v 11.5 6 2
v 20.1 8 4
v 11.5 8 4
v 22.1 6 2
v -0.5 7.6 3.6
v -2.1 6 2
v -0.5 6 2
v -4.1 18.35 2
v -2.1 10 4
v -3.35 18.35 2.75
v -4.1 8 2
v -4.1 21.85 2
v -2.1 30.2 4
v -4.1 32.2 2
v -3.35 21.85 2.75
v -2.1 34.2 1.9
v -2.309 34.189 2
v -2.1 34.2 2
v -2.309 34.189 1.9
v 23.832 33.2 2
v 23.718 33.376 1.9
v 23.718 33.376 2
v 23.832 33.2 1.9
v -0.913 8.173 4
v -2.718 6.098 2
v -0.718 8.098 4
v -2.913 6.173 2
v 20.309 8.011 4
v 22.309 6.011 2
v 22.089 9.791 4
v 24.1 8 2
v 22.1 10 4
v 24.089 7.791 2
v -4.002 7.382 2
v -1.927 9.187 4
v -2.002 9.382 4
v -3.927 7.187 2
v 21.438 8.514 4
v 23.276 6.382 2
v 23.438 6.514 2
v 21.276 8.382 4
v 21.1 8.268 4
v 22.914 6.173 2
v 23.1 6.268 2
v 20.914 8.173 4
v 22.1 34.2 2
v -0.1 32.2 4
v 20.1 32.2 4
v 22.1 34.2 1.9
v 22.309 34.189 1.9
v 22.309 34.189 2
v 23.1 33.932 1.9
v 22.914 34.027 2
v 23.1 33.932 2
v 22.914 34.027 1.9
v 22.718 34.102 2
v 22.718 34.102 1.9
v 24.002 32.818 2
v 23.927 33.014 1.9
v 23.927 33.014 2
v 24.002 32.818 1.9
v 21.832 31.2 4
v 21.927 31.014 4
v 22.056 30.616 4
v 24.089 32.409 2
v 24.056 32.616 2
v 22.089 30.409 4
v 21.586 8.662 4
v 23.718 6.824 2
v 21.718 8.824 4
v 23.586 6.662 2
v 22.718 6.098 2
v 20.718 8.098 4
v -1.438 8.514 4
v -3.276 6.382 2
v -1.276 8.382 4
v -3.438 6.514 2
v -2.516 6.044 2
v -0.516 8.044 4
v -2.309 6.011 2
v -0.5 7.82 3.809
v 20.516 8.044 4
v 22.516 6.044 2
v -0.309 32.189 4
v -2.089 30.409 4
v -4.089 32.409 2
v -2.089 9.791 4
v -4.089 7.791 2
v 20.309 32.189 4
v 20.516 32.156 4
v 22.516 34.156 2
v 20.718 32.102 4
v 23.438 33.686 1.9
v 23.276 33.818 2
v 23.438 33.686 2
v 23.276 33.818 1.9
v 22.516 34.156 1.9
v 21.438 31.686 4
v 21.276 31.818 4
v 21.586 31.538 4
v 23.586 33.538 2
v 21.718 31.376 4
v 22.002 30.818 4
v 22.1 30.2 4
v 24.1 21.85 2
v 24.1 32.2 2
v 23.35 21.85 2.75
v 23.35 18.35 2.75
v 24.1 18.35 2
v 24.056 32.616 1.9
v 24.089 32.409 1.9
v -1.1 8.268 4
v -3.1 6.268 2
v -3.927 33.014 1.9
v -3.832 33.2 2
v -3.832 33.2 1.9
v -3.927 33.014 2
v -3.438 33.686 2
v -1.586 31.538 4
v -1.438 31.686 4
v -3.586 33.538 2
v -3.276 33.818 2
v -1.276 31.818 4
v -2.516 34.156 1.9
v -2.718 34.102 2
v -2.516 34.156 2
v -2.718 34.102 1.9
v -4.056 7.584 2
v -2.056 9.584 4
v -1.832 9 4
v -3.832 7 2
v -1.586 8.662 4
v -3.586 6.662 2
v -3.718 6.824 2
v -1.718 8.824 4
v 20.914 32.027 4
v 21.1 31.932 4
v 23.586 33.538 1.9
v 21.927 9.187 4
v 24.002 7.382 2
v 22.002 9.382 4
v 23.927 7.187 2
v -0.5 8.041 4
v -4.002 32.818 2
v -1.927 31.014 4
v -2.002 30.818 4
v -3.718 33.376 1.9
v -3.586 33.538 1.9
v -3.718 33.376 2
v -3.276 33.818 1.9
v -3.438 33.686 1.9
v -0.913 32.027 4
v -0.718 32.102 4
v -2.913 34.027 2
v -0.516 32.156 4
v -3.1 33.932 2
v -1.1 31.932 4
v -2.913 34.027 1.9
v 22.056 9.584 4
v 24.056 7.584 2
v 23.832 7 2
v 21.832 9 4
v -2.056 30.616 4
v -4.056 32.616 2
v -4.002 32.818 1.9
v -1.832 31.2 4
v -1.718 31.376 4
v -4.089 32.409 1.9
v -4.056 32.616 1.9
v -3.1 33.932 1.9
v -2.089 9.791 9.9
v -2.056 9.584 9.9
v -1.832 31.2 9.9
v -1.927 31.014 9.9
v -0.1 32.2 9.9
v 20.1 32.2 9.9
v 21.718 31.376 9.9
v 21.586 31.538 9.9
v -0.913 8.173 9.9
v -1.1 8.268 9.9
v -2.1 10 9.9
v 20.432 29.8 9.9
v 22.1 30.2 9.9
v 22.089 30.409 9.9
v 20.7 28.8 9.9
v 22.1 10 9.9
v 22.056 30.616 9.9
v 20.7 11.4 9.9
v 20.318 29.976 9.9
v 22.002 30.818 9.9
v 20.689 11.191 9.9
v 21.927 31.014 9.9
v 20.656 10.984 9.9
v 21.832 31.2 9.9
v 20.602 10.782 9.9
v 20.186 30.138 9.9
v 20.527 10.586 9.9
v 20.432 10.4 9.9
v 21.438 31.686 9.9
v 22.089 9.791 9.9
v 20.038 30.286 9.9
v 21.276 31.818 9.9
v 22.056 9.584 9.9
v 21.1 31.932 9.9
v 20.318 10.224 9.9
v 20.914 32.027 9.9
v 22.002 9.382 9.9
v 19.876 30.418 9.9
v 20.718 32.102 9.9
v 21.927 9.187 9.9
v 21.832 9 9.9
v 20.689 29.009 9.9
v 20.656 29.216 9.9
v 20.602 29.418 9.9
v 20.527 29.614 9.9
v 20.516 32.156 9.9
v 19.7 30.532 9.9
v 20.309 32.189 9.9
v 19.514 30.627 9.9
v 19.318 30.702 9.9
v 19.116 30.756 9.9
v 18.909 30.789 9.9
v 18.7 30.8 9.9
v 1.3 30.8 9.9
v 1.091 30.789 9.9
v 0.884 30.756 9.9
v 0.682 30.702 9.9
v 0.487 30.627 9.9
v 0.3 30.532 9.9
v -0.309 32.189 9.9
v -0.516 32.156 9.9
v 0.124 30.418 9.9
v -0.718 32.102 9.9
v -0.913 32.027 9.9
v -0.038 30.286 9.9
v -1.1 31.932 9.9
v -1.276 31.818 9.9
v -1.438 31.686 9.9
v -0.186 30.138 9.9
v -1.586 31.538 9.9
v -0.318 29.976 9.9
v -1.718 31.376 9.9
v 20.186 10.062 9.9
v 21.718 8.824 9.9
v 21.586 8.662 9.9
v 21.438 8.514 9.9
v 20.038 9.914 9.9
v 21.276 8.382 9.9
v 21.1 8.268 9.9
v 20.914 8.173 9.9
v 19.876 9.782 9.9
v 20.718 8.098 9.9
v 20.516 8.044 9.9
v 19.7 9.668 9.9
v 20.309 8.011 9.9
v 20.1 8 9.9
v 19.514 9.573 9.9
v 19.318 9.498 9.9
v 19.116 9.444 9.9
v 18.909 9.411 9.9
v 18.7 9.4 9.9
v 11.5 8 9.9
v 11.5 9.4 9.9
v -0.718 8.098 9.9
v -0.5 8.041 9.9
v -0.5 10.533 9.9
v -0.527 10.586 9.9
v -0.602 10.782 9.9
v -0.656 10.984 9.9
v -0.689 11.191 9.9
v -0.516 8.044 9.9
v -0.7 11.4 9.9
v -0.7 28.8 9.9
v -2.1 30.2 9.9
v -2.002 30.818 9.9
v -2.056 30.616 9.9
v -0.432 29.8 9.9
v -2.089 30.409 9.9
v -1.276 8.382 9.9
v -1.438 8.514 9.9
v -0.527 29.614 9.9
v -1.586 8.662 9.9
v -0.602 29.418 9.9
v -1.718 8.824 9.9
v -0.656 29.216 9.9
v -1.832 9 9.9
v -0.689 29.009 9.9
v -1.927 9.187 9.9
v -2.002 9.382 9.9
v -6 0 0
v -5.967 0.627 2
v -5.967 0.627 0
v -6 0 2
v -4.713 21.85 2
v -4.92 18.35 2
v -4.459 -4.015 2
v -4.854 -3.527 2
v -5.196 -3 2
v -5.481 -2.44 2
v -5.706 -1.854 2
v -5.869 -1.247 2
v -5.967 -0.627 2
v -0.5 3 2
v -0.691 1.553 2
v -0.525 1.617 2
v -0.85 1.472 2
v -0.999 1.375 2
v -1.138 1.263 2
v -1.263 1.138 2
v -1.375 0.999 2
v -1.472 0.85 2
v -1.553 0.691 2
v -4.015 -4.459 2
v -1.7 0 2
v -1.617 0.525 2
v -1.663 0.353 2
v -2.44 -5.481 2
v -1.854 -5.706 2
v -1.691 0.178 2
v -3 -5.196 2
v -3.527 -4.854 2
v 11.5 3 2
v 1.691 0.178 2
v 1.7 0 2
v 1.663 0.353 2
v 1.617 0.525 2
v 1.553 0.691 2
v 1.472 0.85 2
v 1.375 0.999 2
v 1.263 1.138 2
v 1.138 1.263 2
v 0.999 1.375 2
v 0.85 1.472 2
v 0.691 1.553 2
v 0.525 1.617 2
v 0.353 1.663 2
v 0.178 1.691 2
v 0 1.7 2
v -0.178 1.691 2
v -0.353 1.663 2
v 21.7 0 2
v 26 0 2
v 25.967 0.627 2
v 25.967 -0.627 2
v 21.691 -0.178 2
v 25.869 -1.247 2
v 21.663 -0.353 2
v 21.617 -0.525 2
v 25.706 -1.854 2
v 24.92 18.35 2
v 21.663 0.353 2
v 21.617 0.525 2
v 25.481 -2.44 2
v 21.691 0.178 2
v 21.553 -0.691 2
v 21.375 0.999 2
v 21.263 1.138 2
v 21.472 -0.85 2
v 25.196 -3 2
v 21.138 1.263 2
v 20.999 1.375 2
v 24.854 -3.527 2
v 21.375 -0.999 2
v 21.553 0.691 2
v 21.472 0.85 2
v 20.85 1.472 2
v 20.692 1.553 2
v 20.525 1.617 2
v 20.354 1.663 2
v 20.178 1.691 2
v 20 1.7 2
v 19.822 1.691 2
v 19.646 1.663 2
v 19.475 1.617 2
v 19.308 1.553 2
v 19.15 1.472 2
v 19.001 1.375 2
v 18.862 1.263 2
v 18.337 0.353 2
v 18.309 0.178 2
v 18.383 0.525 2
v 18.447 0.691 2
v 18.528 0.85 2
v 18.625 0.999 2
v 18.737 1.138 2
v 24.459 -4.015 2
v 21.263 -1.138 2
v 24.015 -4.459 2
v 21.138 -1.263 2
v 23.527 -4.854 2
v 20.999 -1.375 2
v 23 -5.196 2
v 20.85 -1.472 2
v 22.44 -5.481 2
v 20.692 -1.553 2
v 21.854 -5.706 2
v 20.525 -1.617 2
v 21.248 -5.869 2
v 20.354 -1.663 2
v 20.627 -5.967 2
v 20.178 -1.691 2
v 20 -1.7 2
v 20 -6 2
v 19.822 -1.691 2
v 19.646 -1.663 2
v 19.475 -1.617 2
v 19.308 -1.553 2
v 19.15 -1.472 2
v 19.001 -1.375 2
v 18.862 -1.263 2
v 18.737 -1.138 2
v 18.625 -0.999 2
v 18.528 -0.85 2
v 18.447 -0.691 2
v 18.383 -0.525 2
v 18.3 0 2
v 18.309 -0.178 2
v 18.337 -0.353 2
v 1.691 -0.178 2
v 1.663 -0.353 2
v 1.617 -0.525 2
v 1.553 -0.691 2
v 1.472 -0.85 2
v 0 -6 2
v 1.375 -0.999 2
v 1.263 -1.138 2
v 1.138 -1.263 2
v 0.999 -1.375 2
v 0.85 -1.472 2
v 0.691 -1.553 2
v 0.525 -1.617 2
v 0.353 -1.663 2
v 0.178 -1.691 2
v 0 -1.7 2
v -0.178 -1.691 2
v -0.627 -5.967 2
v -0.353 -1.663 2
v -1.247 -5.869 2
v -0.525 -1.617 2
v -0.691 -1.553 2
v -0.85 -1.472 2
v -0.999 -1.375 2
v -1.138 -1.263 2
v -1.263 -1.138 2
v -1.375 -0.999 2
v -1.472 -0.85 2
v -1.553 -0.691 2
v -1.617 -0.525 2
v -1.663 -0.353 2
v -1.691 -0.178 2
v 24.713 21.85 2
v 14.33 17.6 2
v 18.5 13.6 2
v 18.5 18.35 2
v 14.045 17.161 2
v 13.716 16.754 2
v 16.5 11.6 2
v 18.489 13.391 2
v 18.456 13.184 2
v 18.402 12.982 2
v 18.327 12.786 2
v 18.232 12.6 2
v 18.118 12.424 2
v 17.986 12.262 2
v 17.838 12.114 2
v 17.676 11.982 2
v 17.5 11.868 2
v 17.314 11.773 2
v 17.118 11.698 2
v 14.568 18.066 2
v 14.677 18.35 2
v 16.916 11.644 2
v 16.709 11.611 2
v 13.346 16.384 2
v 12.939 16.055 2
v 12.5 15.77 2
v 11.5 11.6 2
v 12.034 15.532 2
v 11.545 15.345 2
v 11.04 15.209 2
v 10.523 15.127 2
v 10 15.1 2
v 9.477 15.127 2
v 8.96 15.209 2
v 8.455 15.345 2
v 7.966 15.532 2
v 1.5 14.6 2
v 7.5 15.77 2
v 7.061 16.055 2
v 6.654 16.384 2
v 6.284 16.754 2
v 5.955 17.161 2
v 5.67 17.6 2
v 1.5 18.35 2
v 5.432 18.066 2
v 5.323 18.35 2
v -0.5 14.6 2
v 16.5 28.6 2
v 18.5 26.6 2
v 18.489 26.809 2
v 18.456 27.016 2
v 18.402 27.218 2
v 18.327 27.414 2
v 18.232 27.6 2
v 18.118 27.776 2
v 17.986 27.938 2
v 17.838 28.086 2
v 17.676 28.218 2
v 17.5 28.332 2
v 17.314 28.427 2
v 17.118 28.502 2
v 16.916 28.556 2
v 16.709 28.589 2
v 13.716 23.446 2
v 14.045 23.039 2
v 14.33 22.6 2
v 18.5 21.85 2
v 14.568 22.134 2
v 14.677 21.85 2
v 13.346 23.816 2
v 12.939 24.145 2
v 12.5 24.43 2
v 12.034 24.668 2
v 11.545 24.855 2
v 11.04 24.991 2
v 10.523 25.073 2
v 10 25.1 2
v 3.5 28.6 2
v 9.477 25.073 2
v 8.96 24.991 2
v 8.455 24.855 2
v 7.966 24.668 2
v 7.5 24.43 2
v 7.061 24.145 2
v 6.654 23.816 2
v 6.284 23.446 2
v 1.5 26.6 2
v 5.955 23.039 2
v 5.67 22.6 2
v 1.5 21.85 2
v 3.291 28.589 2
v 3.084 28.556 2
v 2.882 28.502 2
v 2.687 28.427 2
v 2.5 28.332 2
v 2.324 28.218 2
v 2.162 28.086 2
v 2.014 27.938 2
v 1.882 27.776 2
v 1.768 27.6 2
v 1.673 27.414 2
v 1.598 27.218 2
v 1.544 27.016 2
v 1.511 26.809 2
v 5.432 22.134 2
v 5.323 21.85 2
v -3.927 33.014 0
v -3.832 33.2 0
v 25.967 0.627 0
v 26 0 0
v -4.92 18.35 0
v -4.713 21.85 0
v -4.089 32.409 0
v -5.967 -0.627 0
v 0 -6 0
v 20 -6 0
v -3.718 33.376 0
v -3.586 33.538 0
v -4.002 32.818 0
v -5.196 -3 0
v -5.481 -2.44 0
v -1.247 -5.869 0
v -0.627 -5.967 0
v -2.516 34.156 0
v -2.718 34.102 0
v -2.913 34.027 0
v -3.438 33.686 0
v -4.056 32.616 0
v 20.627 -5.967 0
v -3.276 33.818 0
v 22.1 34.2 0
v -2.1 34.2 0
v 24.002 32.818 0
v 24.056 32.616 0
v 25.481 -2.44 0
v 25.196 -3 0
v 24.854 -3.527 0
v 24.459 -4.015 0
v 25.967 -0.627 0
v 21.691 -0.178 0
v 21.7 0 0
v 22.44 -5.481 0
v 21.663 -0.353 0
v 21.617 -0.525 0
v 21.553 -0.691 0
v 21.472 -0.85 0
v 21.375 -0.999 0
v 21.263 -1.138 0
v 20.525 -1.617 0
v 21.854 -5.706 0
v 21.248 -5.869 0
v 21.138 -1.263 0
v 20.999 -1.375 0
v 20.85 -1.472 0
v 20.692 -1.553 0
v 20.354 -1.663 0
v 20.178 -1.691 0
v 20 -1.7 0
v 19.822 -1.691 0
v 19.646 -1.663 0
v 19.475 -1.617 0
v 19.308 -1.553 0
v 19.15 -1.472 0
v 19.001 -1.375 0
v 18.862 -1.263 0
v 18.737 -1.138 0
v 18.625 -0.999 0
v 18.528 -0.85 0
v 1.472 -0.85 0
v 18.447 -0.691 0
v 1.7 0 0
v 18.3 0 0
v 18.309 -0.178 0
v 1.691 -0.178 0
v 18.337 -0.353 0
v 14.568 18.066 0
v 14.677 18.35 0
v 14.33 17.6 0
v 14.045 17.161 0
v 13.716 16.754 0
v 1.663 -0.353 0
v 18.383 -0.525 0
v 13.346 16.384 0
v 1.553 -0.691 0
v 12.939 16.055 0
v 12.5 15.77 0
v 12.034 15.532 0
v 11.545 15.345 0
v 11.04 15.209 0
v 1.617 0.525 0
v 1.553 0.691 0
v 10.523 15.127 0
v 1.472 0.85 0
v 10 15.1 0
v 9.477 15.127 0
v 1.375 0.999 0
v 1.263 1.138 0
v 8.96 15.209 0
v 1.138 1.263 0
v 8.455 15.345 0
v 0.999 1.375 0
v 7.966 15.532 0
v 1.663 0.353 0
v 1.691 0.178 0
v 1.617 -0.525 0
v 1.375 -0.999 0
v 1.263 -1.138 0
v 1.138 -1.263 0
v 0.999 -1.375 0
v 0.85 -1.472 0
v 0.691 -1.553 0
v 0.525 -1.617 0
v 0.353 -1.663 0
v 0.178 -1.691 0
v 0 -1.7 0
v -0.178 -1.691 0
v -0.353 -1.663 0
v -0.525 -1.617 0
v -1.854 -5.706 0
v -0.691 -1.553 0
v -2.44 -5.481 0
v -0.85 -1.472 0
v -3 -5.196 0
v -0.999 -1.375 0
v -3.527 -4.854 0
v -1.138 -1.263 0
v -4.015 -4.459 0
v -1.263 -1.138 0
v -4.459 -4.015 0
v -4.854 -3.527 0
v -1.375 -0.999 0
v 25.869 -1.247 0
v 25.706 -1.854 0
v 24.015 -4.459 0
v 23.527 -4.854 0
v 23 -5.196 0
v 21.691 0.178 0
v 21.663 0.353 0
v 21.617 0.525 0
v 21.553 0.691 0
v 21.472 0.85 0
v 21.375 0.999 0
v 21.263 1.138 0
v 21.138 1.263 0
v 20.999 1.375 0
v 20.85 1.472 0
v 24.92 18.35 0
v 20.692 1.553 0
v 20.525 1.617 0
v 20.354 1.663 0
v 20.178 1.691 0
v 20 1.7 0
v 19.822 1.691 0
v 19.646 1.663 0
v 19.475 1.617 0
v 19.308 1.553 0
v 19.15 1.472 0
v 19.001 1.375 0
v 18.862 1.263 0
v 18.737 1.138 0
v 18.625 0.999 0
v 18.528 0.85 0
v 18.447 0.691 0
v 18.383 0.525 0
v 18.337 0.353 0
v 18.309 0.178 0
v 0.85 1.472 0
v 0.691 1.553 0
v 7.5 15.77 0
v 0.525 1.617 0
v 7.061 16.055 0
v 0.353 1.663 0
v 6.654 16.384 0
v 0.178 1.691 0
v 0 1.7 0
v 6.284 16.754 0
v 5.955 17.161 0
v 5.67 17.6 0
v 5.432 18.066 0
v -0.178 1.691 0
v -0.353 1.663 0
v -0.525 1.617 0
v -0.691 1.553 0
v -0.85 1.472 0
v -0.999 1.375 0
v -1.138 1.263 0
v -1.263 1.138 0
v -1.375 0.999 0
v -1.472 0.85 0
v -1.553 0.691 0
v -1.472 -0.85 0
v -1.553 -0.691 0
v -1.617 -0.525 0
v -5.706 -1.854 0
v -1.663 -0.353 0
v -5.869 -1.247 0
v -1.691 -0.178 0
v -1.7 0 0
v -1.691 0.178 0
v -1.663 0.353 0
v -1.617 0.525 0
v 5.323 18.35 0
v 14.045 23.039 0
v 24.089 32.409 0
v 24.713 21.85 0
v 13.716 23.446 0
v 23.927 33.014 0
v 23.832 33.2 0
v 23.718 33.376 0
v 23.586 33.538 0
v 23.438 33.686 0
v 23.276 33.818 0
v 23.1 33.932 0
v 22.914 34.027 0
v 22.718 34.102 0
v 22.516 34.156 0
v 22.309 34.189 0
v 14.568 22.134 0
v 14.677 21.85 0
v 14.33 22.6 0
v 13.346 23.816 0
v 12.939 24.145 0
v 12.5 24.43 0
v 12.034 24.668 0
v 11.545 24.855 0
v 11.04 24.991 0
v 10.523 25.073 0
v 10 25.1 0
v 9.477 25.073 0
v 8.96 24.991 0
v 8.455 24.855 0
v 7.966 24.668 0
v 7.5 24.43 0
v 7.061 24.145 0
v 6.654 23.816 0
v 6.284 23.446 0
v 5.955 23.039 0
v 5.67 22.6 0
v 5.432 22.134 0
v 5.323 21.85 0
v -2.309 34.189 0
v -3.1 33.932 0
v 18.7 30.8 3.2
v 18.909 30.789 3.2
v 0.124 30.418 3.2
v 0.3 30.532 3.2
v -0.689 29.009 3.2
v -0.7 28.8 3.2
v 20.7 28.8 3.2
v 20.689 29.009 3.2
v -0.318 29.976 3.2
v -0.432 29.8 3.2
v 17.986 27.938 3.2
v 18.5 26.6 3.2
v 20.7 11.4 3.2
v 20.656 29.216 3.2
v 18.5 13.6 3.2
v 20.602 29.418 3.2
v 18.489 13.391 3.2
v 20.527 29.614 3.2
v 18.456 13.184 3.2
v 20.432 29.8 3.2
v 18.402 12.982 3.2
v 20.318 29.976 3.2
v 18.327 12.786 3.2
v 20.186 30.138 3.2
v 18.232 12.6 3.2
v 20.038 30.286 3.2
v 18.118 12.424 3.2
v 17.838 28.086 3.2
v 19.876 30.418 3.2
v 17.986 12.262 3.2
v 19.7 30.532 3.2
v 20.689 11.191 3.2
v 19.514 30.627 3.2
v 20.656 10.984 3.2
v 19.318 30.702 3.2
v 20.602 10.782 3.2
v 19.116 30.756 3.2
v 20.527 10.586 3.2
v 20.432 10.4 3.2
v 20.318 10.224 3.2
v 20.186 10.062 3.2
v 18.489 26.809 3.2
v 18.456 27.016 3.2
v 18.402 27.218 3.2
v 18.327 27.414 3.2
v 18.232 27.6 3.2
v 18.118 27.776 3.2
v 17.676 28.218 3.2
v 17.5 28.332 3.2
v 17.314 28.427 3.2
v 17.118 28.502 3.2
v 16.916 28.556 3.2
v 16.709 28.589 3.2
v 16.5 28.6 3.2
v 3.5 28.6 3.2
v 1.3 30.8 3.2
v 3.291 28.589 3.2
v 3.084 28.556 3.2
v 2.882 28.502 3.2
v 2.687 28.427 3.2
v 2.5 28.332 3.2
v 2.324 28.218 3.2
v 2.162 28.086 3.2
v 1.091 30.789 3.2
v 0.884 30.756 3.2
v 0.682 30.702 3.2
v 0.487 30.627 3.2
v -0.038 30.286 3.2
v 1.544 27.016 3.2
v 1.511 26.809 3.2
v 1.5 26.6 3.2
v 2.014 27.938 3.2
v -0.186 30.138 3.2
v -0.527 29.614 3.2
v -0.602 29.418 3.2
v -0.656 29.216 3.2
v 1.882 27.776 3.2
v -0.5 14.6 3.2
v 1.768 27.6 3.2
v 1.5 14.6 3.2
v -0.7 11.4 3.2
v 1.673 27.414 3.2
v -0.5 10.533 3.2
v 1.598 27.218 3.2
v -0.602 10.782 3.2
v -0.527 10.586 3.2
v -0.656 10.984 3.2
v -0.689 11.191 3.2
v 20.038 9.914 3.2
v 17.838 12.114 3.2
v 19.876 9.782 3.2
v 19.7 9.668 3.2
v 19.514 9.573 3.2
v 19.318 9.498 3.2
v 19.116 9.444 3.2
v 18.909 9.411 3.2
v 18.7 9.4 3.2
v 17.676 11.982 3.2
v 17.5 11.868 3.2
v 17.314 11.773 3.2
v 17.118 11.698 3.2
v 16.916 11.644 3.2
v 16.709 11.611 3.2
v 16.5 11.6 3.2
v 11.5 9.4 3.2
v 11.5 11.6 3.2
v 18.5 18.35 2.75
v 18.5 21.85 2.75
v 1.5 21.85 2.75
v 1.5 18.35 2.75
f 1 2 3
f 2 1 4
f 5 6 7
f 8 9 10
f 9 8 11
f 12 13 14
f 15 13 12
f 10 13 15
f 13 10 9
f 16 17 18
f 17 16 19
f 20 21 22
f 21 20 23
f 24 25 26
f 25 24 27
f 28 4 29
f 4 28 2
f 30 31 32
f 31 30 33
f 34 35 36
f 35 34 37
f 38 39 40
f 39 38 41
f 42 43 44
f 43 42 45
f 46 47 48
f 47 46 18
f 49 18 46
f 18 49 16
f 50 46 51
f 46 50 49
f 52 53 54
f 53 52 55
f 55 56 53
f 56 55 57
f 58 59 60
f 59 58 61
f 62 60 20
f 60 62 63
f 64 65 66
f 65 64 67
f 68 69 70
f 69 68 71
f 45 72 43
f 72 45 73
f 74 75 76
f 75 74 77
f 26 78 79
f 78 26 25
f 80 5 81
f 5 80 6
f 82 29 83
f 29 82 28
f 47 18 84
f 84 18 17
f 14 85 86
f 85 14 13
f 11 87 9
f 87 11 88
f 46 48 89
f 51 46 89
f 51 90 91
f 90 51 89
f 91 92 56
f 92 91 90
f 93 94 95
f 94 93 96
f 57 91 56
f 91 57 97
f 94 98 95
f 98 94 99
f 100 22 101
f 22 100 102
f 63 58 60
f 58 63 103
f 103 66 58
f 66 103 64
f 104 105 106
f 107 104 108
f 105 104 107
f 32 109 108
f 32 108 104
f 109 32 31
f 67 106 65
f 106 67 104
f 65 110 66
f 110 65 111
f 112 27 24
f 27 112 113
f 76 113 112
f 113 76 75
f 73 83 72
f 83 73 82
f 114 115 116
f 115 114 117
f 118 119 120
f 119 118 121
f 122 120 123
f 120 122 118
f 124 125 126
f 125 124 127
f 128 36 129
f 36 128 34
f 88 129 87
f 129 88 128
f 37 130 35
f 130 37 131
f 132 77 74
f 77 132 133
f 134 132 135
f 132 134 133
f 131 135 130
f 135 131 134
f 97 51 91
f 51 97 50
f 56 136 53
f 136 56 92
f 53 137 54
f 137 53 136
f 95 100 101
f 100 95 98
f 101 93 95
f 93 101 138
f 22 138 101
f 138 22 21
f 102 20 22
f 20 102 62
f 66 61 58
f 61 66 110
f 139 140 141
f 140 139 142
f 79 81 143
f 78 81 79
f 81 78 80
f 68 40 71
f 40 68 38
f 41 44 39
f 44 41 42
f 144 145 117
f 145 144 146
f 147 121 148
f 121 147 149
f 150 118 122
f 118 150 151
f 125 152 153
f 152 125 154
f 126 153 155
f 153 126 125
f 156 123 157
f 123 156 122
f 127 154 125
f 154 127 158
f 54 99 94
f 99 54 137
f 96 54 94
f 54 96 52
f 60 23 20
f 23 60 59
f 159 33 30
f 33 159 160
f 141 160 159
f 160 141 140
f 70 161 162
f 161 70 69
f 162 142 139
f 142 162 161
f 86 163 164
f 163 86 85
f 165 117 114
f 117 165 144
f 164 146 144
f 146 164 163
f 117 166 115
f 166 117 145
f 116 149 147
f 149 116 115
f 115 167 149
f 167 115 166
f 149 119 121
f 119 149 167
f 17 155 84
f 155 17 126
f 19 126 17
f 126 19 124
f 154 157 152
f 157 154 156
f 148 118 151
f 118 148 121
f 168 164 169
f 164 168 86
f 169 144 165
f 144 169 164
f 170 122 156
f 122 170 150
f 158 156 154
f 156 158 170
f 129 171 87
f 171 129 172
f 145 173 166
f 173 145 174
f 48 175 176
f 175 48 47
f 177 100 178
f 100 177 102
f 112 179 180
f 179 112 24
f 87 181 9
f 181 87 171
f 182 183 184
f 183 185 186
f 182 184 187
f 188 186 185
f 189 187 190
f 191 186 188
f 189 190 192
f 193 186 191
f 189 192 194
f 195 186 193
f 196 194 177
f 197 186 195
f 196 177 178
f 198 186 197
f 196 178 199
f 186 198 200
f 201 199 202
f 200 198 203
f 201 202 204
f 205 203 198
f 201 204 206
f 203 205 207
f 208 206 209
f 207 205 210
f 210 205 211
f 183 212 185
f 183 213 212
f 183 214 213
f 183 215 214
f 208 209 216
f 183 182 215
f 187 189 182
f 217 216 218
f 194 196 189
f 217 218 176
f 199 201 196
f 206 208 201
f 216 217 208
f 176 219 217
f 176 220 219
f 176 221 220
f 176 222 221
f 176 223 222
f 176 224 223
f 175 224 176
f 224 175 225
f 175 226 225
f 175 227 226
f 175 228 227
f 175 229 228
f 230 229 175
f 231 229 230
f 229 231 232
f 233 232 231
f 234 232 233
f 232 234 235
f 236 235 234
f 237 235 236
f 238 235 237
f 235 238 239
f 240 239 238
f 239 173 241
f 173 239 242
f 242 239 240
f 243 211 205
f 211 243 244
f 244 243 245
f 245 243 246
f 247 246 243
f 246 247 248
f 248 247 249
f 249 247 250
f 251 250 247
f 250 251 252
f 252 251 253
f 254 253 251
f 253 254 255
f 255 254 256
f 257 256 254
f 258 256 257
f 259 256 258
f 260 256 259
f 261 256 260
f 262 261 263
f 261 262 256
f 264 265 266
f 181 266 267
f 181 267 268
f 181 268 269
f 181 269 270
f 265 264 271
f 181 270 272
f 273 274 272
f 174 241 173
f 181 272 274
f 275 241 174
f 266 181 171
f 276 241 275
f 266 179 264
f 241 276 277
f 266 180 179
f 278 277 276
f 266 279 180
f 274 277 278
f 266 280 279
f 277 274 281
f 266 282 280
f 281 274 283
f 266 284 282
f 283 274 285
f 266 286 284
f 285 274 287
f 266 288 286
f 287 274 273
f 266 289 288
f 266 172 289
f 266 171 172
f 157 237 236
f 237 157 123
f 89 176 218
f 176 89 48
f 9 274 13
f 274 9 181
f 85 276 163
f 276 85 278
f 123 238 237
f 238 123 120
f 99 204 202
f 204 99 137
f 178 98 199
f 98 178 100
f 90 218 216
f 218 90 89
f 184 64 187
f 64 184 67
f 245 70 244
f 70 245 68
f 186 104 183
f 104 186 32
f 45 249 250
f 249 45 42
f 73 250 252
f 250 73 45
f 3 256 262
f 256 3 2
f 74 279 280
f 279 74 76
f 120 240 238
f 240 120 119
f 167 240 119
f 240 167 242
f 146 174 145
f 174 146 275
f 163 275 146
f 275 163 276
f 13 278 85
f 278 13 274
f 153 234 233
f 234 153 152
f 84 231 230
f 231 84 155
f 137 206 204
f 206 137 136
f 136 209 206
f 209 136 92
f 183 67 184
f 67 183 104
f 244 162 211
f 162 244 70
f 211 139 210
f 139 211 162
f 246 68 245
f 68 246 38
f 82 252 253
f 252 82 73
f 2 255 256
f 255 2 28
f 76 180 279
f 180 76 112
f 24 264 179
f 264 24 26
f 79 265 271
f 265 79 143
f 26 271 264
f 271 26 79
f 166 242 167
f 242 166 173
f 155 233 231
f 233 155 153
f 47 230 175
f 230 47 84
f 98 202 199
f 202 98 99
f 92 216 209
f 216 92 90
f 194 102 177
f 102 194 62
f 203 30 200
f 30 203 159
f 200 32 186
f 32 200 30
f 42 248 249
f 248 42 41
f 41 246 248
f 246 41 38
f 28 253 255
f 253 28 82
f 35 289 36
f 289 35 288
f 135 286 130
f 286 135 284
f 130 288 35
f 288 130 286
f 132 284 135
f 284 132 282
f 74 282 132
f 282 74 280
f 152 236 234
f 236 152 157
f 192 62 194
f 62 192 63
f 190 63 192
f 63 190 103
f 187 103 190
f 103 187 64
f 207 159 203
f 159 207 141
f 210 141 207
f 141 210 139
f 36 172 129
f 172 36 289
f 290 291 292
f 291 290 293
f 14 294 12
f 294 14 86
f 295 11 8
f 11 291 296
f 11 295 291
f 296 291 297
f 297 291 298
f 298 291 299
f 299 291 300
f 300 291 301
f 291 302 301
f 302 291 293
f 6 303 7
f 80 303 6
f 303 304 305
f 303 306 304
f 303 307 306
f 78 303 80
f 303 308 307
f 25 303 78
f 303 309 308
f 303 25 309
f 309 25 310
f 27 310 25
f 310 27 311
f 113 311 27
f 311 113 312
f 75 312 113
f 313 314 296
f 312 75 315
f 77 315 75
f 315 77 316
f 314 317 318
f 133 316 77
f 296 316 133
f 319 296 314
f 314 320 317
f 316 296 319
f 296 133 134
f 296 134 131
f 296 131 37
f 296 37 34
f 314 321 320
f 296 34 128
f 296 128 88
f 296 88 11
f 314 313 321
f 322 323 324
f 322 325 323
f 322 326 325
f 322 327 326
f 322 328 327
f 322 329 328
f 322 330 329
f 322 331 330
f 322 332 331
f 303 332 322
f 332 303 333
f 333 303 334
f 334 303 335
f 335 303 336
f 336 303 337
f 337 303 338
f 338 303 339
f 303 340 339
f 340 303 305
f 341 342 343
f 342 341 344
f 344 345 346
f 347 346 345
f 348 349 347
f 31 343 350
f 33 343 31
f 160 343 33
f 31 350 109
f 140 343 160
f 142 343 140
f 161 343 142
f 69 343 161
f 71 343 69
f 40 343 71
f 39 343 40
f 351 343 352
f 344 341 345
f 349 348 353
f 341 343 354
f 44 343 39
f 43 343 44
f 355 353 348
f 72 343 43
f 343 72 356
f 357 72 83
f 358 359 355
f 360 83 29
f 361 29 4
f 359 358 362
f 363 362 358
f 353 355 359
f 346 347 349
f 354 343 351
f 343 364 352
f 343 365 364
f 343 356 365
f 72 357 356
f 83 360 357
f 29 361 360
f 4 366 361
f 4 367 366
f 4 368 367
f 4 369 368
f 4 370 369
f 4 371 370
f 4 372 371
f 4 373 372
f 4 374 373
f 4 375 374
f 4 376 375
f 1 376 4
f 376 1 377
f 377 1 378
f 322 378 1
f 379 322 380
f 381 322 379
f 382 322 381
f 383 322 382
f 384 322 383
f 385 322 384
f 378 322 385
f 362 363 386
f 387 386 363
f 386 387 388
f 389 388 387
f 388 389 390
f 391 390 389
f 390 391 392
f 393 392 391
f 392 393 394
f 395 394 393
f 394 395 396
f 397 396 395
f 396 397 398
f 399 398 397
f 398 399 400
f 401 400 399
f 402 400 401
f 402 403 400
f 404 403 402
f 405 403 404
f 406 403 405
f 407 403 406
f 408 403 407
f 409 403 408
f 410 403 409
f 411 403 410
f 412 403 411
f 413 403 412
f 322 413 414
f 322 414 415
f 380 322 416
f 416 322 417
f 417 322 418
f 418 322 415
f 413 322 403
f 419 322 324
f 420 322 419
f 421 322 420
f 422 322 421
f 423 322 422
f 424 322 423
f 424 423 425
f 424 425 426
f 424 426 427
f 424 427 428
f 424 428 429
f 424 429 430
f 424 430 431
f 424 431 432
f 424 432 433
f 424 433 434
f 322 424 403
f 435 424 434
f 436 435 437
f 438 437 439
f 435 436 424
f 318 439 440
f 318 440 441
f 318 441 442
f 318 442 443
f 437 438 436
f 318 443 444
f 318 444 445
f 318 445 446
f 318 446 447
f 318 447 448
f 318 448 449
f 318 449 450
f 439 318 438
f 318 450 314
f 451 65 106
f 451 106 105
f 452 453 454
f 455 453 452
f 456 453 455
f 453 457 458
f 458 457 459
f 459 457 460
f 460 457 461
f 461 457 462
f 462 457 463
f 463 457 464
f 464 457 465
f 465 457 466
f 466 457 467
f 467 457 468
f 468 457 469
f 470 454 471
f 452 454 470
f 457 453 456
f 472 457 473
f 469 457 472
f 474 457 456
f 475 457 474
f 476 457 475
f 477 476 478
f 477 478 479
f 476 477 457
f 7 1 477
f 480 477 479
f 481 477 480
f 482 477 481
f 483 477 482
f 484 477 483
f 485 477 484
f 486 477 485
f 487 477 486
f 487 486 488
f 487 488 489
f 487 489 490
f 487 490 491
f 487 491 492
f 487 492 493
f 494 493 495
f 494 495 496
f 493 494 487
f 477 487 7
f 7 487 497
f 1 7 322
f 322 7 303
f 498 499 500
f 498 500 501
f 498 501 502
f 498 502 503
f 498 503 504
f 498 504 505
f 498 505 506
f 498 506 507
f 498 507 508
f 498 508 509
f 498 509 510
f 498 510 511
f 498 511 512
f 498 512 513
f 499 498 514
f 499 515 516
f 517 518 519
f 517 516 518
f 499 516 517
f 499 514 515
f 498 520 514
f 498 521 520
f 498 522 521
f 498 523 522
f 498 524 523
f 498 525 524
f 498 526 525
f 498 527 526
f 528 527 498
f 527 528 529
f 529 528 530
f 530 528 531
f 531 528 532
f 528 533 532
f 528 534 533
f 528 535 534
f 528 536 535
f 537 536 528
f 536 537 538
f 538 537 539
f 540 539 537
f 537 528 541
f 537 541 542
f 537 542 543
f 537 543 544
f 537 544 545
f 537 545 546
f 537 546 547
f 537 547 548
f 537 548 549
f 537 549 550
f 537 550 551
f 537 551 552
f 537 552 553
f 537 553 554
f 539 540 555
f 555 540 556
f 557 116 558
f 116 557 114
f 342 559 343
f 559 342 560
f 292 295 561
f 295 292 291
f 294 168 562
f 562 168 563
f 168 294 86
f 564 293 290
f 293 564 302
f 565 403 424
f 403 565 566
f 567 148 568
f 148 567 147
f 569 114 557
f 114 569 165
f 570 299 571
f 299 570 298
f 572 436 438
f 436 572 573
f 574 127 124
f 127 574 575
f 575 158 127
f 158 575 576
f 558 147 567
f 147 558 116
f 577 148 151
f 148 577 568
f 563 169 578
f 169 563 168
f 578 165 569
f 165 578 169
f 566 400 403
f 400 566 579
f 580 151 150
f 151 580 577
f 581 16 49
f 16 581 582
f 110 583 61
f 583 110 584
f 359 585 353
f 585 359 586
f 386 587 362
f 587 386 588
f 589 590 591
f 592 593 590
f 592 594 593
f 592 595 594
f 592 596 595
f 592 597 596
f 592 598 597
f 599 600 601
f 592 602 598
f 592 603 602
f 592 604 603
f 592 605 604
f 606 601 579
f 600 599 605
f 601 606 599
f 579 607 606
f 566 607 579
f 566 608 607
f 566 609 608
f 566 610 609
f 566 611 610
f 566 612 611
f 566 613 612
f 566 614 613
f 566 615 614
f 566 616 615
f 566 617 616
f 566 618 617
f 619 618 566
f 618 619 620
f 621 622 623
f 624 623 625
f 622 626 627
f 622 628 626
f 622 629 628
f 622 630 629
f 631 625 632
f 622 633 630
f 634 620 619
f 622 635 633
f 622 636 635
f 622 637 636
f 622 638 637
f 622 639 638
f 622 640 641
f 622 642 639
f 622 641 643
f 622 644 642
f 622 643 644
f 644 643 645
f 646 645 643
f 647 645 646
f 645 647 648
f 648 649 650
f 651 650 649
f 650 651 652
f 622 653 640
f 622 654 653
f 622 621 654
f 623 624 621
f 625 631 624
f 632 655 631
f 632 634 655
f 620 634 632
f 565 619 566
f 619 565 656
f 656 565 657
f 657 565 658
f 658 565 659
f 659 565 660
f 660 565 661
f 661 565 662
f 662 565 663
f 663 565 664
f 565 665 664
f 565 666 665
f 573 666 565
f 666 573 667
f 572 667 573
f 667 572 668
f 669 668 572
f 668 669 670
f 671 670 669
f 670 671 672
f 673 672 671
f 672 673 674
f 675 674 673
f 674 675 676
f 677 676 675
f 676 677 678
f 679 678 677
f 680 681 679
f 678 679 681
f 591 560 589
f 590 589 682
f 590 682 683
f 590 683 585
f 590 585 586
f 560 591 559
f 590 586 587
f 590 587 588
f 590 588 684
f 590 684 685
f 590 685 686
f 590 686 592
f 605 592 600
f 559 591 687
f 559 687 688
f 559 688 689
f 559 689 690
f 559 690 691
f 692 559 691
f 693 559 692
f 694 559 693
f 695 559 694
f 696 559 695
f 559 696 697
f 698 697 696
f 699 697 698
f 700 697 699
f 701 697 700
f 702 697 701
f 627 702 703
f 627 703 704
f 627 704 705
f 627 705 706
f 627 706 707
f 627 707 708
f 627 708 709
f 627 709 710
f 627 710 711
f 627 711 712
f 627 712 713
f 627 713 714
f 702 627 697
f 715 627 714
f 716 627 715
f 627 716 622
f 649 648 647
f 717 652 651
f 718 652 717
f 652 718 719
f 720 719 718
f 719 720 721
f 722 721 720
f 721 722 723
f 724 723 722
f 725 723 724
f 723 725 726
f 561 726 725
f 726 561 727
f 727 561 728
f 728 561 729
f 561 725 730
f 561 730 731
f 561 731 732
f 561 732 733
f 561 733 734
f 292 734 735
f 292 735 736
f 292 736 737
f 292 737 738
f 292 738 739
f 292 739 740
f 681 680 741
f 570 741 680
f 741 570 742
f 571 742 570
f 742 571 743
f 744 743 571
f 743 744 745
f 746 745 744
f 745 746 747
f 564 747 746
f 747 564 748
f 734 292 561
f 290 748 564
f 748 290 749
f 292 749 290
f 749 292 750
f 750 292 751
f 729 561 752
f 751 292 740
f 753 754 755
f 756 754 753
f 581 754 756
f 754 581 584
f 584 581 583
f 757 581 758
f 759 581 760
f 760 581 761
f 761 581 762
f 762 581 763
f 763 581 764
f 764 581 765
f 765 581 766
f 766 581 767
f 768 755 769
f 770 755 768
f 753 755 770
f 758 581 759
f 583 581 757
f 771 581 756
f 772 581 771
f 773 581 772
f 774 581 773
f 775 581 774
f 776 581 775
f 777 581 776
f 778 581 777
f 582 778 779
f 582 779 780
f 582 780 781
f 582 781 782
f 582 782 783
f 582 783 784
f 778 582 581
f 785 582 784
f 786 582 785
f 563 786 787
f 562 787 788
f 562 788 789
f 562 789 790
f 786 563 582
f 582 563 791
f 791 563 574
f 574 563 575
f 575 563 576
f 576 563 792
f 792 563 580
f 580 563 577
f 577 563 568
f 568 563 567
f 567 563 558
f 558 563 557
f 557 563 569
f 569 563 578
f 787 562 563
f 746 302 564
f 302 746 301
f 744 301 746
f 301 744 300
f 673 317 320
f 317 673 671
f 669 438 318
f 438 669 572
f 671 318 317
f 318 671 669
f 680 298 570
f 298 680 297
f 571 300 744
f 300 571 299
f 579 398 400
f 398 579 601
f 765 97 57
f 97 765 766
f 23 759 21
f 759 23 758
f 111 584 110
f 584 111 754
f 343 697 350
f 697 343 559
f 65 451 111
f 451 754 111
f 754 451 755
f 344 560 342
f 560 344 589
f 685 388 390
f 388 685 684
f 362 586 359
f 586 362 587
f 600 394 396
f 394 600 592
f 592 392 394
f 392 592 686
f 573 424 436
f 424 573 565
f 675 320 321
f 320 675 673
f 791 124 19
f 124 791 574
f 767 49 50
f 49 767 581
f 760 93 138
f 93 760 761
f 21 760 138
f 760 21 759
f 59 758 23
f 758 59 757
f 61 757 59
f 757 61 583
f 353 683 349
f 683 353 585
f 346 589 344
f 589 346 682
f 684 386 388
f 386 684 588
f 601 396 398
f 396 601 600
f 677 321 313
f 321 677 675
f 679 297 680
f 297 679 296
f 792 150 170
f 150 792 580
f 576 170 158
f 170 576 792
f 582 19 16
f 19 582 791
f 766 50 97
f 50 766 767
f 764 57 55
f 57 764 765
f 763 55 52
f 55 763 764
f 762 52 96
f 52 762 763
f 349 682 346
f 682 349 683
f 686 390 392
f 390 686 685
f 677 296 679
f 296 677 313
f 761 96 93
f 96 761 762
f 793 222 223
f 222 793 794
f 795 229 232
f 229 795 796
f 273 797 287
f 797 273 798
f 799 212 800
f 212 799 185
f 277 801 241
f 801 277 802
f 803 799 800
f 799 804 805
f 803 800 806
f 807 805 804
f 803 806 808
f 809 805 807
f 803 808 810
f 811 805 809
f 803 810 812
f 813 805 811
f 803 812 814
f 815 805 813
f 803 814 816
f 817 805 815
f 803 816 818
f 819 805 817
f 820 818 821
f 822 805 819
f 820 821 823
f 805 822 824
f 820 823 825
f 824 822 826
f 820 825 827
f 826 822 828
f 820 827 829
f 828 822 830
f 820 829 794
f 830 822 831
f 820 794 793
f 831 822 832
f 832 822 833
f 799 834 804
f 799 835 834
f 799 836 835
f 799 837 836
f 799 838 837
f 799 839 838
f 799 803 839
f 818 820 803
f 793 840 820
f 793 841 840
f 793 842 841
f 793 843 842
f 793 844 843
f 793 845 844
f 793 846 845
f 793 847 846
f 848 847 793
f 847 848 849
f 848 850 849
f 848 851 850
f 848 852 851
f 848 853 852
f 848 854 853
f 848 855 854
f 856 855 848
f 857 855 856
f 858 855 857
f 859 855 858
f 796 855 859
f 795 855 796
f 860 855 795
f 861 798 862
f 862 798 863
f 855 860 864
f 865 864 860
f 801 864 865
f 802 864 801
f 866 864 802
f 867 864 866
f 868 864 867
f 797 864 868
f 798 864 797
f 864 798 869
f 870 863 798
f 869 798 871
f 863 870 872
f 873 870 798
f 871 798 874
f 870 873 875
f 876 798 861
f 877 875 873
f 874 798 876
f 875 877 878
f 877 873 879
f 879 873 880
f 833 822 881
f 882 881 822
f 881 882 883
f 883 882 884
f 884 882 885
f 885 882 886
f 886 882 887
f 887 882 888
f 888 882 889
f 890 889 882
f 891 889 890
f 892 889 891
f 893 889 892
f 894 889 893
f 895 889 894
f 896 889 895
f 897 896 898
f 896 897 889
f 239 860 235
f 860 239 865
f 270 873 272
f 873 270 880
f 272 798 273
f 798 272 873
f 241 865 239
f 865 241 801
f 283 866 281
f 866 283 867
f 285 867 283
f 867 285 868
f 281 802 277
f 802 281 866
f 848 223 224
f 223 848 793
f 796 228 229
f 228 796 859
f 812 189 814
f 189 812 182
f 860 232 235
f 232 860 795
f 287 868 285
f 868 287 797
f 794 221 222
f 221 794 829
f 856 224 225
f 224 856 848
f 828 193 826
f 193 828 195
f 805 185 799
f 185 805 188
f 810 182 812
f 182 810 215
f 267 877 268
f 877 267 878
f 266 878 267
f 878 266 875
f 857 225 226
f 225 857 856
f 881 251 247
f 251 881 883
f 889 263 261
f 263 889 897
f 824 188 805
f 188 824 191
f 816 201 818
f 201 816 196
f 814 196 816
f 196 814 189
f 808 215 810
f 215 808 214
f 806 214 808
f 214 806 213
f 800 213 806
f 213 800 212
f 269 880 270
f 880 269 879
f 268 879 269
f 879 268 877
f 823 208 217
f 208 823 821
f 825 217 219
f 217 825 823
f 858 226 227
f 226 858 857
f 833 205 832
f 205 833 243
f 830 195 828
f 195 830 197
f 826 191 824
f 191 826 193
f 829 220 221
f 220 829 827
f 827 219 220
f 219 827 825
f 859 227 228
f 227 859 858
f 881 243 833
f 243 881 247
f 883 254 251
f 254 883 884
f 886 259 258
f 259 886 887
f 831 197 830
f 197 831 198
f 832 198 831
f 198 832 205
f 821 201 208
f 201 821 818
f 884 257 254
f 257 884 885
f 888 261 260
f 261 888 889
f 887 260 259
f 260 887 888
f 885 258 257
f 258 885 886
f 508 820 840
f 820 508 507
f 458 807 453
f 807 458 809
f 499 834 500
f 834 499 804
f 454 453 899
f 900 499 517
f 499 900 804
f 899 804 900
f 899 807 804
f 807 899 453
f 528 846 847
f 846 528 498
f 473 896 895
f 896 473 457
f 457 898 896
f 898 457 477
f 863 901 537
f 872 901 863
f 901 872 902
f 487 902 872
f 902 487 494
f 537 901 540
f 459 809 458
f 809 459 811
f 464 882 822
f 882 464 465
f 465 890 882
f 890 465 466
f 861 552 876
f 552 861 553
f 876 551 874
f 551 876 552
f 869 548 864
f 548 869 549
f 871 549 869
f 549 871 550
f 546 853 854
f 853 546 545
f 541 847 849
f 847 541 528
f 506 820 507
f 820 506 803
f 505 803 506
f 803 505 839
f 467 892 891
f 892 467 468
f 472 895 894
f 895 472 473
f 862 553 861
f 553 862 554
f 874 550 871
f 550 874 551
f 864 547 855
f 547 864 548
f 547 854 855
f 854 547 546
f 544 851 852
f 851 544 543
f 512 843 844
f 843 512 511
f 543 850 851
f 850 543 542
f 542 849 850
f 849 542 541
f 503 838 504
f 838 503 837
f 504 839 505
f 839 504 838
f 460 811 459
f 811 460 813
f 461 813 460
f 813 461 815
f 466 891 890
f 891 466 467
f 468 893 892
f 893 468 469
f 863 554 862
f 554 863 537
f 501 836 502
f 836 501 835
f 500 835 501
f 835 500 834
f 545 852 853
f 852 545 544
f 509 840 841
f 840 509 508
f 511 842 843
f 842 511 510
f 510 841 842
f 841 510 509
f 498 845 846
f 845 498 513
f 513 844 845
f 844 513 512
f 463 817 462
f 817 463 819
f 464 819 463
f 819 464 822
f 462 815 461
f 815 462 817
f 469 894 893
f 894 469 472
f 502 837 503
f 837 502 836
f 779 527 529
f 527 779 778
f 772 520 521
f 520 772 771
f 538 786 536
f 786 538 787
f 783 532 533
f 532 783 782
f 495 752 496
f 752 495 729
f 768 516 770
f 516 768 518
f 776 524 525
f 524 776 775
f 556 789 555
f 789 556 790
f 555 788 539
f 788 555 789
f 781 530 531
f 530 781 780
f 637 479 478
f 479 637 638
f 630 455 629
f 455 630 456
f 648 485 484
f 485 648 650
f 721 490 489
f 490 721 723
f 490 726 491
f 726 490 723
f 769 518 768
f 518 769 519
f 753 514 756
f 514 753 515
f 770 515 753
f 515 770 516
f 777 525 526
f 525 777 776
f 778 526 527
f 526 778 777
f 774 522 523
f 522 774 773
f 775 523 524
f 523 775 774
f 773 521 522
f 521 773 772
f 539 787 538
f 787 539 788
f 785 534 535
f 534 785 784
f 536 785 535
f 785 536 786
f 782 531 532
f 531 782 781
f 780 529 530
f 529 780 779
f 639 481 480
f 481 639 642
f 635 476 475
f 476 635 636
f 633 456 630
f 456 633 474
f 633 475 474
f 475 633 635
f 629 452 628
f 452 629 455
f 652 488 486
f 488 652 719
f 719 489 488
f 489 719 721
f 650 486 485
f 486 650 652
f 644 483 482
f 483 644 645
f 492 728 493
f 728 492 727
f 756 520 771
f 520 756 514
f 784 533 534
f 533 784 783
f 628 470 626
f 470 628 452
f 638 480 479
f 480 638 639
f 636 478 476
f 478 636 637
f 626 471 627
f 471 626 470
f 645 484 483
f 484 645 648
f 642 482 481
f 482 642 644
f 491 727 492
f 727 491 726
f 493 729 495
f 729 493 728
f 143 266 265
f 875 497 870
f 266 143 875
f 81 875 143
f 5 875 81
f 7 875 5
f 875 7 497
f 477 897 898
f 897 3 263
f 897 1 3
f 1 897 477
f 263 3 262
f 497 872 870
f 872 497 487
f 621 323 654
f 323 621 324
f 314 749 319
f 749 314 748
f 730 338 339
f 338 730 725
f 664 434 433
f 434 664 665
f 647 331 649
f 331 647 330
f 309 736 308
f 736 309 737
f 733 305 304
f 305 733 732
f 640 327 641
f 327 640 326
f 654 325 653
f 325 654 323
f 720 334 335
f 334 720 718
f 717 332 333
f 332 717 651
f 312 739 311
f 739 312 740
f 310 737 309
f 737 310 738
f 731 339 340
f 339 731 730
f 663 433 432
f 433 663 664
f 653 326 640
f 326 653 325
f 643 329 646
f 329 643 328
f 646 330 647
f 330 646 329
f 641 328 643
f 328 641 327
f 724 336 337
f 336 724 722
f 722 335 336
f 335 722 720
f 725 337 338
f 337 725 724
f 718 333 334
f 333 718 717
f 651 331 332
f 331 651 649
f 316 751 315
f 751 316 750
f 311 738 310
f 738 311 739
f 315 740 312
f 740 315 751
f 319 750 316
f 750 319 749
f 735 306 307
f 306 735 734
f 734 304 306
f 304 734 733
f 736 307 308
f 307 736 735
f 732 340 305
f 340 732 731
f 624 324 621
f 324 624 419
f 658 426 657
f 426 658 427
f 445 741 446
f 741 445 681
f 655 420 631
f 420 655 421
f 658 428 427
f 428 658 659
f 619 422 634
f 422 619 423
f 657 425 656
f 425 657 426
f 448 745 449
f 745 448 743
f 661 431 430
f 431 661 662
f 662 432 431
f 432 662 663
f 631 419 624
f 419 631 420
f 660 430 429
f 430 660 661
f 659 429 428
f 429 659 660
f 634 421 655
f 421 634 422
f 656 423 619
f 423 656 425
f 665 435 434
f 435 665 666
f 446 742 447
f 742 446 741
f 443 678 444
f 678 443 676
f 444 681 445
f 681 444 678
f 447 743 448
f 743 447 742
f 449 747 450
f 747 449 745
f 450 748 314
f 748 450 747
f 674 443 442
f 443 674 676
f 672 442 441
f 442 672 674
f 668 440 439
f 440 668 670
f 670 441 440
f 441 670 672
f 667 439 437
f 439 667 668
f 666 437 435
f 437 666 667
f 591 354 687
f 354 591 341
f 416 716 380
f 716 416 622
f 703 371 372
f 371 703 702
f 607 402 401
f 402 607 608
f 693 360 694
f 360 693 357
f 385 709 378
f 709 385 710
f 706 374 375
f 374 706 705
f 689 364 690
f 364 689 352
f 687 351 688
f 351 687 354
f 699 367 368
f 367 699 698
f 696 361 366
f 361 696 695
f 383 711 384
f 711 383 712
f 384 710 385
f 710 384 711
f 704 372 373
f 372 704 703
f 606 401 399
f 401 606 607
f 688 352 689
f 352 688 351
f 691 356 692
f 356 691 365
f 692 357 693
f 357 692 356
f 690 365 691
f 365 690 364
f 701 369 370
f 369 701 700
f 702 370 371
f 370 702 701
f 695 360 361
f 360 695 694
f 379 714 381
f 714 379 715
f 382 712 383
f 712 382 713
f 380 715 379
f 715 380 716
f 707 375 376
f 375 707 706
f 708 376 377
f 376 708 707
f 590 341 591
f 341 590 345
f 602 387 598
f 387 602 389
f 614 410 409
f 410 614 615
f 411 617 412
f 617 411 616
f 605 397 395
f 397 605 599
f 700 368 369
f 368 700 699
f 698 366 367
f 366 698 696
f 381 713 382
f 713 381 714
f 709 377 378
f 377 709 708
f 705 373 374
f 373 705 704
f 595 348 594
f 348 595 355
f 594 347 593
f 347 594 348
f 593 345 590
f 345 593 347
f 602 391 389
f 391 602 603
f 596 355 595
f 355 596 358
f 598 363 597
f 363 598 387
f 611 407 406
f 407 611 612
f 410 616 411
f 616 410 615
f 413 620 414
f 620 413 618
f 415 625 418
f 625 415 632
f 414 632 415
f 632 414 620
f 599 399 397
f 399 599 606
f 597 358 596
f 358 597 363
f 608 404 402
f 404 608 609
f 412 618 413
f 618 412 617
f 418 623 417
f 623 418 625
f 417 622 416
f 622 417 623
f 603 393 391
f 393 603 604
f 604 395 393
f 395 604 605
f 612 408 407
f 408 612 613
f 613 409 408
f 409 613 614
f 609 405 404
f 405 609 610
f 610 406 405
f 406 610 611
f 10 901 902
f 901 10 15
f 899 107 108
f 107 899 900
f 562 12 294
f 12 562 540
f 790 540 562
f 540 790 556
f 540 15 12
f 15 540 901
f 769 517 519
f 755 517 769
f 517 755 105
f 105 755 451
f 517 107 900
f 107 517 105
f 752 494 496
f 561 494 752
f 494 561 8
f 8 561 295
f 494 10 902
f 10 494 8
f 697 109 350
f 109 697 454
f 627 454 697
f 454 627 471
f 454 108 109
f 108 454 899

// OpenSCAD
// Copyright (C) 2026 Weston Hinton <wbhinton@gmail.com>
//
// This program is free software: you can redistribute it and/or modify
// it under the terms of the GNU General Public License as published by
// the Free Software Foundation, either version 3 of the License, or
// (at your option) any later version.
//
// This program is distributed in the hope that it will be useful,
// but WITHOUT ANY WARRANTY; without even the implied warranty of
// MERCHANTABILITY or FITNESS FOR A PARTICULAR PURPOSE.  See the
// GNU General Public License for more details.
//
// You should have received a copy of the GNU General Public License
// along with this program.  If not, see <https://www.gnu.org/licenses/>.
// ============================================================
// PROJECT: FPV COMPONENT LIBRARY - GPS MOUNT
// COMPONENT: HGLRC M100-5883 (21x21x8.02mm)
// VERSION: 2.2 (Refactored Chamfer + Full Documentation)
// ============================================================

// --- USER ADJUSTABLE SETTINGS ---
hole_spacing    = 20;    // Distance between centers of frame screws (Standard: 20-30mm)
hole_dia        = 3.4;   // Screw hole size (3.4mm gives a snug fit for M3 in TPU)
base_thickness  = 2;   // Thickness of the mounting plate
base_width      = 12.0;  // Diameter of the circular pads around the screws
corner_radius   = 2.0;   // Curvature of the corners (higher is smoother/stronger)

// --- GPS UNIT DIMENSIONS ---
gps_w = 21;              // Width of the GPS unit
gps_l = 21;              // Length of the GPS unit
gps_h = 8.0;            // Height of the GPS unit
wall  = 1.6;             // Wall thickness (1.6mm = 4 perimeters with 0.4mm nozzle)

// --- UTILITY & CLEARANCE SETTINGS ---
zt_width     = 3.5;      // Width of the zip-tie channel
zt_depth     = 1.5;      // Depth the zip-tie sits below the GPS floor
wire_width   = 12;      // Width of the opening for the GPS wires
wire_offset  = -4.5;      // Shift the wire exit right (+) or left (-) to match pads
nob_height   = 1.2;      // Height of internal corner pillars (creates magnetic air gap)
chamfer_size = 2.0;      // Vertical and horizontal size of the base reinforcement

// Dynamic calculation to ensure GPS box doesn't overlap screw heads
gps_offset_y = (base_width/2) + (gps_l/2) + wall + 2; 

$fn = 60;                // Smoothness of curves (60 is high quality)

// --- THE MASTER DIFFERENCE ---
// In OpenSCAD, 'difference' subtracts everything below the first object.
difference() {
    
    // STEP 1: ADD ALL SOLID GEOMETRY (What we want to print)
    union() {
        // Create the flat mounting footprint
        unified_base_solid();
        
        // Add the vertical GPS box structure (lowered slightly to fuse with base)
        translate([hole_spacing/2, gps_offset_y, base_thickness - 0.1])
            gps_outer_shell_solid();
            
        // Add the four internal corner pillars (Nobs)
        // These stay even after the cavity is cut out
        translate([hole_spacing/2, gps_offset_y, base_thickness - 0.1])
            for(x=[-1,1], y=[-1,1])
                translate([x*(gps_w/2 - 2), y*(gps_l/2 - 2), 0])
                    cylinder(h=nob_height + 0.1, d=3);
    }

    // STEP 2: SUBTRACT THE INTERNAL VOIDS (The "Holes")
    
    // Main GPS cavity (starts at the top of the pillars)
    translate([hole_spacing/2, gps_offset_y, base_thickness + nob_height])
        rounded_rect(gps_w + 0.4, gps_l + 0.4, gps_h + 5);
    
    // Floor relief (clears center space between pillars so zip-tie fits)
    translate([hole_spacing/2, gps_offset_y, base_thickness])
        rounded_rect(gps_w - 4, gps_l - 4, nob_height + 0.1);

    // Ejection hole (lets you push the GPS out from the bottom with a tool)
    translate([hole_spacing/2, gps_offset_y, -1])
        cylinder(h=base_thickness + 2, d=10);

    // Wire exit slot (extended forward to clear the chamfer flared base)
    translate([hole_spacing/2 + wire_offset - (wire_width/2), gps_offset_y - (gps_l/2) - wall - 5, base_thickness])
        cube([wire_width, wall + 10, gps_h + 1]);

    // STEP 3: FINAL HARDWARE CUTS (Screws and Zip-Ties)
    
    // Screw holes for frame attachment
    translate([0, 0, -1]) cylinder(h=base_thickness + 2, d=hole_dia);
    translate([hole_spacing, 0, -1]) cylinder(h=base_thickness + 2, d=hole_dia);

    // Zip-tie Channel (Trough in floor and windows in walls combined)
    // We use a double-depth cut to ensure no surface artifacts remain
    translate([hole_spacing/2, gps_offset_y, base_thickness + (zt_depth/2) - zt_depth])
        cube([gps_w + (wall*2) + 10, zt_width, zt_depth * 2], center=true);
}

// --- MODULES (The Building Blocks) ---

module unified_base_solid() {
    // Connects the screw pads and the GPS footprint into one solid slab.
    // We include the chamfer_size in the footprint so the base supports the flare.
    hull() {
        translate([0, 0, 0]) cylinder(h=base_thickness, d=base_width);
        translate([hole_spacing, 0, 0]) cylinder(h=base_thickness, d=base_width);
        translate([hole_spacing/2, gps_offset_y, 0])
            rounded_rect(gps_w + (wall*2) + (chamfer_size*2), gps_l + (wall*2) + (chamfer_size*2), base_thickness);
    }
}

module gps_outer_shell_solid() {
    // Generates the vertical box with a clean 45-degree chamfer at the bottom.
    // 'hull' between two sizes creates a mathematically perfect slanted surface.
    hull() {
        // Wide footprint at the very bottom
        rounded_rect(gps_w + (wall*2) + (chamfer_size*2), gps_l + (wall*2) + (chamfer_size*2), 0.1);
        
        // Target wall thickness at the top of the chamfer height
        translate([0, 0, chamfer_size])
            rounded_rect(gps_w + (wall*2), gps_l + (wall*2), 0.1);
    }
    // Main vertical wall volume extending to full height
    rounded_rect(gps_w + (wall*2), gps_l + (wall*2), gps_h);
}

module rounded_rect(w, l, h) {
    // Helper tool to create boxes with smooth corners using 'hull' on 4 cylinders.
    hull() {
        for(x=[-1,1], y=[-1,1])
            translate([x*(w/2 - corner_radius), y*(l/2 - corner_radius), 0])
                cylinder(h=h, r=corner_radius);
    }
}
